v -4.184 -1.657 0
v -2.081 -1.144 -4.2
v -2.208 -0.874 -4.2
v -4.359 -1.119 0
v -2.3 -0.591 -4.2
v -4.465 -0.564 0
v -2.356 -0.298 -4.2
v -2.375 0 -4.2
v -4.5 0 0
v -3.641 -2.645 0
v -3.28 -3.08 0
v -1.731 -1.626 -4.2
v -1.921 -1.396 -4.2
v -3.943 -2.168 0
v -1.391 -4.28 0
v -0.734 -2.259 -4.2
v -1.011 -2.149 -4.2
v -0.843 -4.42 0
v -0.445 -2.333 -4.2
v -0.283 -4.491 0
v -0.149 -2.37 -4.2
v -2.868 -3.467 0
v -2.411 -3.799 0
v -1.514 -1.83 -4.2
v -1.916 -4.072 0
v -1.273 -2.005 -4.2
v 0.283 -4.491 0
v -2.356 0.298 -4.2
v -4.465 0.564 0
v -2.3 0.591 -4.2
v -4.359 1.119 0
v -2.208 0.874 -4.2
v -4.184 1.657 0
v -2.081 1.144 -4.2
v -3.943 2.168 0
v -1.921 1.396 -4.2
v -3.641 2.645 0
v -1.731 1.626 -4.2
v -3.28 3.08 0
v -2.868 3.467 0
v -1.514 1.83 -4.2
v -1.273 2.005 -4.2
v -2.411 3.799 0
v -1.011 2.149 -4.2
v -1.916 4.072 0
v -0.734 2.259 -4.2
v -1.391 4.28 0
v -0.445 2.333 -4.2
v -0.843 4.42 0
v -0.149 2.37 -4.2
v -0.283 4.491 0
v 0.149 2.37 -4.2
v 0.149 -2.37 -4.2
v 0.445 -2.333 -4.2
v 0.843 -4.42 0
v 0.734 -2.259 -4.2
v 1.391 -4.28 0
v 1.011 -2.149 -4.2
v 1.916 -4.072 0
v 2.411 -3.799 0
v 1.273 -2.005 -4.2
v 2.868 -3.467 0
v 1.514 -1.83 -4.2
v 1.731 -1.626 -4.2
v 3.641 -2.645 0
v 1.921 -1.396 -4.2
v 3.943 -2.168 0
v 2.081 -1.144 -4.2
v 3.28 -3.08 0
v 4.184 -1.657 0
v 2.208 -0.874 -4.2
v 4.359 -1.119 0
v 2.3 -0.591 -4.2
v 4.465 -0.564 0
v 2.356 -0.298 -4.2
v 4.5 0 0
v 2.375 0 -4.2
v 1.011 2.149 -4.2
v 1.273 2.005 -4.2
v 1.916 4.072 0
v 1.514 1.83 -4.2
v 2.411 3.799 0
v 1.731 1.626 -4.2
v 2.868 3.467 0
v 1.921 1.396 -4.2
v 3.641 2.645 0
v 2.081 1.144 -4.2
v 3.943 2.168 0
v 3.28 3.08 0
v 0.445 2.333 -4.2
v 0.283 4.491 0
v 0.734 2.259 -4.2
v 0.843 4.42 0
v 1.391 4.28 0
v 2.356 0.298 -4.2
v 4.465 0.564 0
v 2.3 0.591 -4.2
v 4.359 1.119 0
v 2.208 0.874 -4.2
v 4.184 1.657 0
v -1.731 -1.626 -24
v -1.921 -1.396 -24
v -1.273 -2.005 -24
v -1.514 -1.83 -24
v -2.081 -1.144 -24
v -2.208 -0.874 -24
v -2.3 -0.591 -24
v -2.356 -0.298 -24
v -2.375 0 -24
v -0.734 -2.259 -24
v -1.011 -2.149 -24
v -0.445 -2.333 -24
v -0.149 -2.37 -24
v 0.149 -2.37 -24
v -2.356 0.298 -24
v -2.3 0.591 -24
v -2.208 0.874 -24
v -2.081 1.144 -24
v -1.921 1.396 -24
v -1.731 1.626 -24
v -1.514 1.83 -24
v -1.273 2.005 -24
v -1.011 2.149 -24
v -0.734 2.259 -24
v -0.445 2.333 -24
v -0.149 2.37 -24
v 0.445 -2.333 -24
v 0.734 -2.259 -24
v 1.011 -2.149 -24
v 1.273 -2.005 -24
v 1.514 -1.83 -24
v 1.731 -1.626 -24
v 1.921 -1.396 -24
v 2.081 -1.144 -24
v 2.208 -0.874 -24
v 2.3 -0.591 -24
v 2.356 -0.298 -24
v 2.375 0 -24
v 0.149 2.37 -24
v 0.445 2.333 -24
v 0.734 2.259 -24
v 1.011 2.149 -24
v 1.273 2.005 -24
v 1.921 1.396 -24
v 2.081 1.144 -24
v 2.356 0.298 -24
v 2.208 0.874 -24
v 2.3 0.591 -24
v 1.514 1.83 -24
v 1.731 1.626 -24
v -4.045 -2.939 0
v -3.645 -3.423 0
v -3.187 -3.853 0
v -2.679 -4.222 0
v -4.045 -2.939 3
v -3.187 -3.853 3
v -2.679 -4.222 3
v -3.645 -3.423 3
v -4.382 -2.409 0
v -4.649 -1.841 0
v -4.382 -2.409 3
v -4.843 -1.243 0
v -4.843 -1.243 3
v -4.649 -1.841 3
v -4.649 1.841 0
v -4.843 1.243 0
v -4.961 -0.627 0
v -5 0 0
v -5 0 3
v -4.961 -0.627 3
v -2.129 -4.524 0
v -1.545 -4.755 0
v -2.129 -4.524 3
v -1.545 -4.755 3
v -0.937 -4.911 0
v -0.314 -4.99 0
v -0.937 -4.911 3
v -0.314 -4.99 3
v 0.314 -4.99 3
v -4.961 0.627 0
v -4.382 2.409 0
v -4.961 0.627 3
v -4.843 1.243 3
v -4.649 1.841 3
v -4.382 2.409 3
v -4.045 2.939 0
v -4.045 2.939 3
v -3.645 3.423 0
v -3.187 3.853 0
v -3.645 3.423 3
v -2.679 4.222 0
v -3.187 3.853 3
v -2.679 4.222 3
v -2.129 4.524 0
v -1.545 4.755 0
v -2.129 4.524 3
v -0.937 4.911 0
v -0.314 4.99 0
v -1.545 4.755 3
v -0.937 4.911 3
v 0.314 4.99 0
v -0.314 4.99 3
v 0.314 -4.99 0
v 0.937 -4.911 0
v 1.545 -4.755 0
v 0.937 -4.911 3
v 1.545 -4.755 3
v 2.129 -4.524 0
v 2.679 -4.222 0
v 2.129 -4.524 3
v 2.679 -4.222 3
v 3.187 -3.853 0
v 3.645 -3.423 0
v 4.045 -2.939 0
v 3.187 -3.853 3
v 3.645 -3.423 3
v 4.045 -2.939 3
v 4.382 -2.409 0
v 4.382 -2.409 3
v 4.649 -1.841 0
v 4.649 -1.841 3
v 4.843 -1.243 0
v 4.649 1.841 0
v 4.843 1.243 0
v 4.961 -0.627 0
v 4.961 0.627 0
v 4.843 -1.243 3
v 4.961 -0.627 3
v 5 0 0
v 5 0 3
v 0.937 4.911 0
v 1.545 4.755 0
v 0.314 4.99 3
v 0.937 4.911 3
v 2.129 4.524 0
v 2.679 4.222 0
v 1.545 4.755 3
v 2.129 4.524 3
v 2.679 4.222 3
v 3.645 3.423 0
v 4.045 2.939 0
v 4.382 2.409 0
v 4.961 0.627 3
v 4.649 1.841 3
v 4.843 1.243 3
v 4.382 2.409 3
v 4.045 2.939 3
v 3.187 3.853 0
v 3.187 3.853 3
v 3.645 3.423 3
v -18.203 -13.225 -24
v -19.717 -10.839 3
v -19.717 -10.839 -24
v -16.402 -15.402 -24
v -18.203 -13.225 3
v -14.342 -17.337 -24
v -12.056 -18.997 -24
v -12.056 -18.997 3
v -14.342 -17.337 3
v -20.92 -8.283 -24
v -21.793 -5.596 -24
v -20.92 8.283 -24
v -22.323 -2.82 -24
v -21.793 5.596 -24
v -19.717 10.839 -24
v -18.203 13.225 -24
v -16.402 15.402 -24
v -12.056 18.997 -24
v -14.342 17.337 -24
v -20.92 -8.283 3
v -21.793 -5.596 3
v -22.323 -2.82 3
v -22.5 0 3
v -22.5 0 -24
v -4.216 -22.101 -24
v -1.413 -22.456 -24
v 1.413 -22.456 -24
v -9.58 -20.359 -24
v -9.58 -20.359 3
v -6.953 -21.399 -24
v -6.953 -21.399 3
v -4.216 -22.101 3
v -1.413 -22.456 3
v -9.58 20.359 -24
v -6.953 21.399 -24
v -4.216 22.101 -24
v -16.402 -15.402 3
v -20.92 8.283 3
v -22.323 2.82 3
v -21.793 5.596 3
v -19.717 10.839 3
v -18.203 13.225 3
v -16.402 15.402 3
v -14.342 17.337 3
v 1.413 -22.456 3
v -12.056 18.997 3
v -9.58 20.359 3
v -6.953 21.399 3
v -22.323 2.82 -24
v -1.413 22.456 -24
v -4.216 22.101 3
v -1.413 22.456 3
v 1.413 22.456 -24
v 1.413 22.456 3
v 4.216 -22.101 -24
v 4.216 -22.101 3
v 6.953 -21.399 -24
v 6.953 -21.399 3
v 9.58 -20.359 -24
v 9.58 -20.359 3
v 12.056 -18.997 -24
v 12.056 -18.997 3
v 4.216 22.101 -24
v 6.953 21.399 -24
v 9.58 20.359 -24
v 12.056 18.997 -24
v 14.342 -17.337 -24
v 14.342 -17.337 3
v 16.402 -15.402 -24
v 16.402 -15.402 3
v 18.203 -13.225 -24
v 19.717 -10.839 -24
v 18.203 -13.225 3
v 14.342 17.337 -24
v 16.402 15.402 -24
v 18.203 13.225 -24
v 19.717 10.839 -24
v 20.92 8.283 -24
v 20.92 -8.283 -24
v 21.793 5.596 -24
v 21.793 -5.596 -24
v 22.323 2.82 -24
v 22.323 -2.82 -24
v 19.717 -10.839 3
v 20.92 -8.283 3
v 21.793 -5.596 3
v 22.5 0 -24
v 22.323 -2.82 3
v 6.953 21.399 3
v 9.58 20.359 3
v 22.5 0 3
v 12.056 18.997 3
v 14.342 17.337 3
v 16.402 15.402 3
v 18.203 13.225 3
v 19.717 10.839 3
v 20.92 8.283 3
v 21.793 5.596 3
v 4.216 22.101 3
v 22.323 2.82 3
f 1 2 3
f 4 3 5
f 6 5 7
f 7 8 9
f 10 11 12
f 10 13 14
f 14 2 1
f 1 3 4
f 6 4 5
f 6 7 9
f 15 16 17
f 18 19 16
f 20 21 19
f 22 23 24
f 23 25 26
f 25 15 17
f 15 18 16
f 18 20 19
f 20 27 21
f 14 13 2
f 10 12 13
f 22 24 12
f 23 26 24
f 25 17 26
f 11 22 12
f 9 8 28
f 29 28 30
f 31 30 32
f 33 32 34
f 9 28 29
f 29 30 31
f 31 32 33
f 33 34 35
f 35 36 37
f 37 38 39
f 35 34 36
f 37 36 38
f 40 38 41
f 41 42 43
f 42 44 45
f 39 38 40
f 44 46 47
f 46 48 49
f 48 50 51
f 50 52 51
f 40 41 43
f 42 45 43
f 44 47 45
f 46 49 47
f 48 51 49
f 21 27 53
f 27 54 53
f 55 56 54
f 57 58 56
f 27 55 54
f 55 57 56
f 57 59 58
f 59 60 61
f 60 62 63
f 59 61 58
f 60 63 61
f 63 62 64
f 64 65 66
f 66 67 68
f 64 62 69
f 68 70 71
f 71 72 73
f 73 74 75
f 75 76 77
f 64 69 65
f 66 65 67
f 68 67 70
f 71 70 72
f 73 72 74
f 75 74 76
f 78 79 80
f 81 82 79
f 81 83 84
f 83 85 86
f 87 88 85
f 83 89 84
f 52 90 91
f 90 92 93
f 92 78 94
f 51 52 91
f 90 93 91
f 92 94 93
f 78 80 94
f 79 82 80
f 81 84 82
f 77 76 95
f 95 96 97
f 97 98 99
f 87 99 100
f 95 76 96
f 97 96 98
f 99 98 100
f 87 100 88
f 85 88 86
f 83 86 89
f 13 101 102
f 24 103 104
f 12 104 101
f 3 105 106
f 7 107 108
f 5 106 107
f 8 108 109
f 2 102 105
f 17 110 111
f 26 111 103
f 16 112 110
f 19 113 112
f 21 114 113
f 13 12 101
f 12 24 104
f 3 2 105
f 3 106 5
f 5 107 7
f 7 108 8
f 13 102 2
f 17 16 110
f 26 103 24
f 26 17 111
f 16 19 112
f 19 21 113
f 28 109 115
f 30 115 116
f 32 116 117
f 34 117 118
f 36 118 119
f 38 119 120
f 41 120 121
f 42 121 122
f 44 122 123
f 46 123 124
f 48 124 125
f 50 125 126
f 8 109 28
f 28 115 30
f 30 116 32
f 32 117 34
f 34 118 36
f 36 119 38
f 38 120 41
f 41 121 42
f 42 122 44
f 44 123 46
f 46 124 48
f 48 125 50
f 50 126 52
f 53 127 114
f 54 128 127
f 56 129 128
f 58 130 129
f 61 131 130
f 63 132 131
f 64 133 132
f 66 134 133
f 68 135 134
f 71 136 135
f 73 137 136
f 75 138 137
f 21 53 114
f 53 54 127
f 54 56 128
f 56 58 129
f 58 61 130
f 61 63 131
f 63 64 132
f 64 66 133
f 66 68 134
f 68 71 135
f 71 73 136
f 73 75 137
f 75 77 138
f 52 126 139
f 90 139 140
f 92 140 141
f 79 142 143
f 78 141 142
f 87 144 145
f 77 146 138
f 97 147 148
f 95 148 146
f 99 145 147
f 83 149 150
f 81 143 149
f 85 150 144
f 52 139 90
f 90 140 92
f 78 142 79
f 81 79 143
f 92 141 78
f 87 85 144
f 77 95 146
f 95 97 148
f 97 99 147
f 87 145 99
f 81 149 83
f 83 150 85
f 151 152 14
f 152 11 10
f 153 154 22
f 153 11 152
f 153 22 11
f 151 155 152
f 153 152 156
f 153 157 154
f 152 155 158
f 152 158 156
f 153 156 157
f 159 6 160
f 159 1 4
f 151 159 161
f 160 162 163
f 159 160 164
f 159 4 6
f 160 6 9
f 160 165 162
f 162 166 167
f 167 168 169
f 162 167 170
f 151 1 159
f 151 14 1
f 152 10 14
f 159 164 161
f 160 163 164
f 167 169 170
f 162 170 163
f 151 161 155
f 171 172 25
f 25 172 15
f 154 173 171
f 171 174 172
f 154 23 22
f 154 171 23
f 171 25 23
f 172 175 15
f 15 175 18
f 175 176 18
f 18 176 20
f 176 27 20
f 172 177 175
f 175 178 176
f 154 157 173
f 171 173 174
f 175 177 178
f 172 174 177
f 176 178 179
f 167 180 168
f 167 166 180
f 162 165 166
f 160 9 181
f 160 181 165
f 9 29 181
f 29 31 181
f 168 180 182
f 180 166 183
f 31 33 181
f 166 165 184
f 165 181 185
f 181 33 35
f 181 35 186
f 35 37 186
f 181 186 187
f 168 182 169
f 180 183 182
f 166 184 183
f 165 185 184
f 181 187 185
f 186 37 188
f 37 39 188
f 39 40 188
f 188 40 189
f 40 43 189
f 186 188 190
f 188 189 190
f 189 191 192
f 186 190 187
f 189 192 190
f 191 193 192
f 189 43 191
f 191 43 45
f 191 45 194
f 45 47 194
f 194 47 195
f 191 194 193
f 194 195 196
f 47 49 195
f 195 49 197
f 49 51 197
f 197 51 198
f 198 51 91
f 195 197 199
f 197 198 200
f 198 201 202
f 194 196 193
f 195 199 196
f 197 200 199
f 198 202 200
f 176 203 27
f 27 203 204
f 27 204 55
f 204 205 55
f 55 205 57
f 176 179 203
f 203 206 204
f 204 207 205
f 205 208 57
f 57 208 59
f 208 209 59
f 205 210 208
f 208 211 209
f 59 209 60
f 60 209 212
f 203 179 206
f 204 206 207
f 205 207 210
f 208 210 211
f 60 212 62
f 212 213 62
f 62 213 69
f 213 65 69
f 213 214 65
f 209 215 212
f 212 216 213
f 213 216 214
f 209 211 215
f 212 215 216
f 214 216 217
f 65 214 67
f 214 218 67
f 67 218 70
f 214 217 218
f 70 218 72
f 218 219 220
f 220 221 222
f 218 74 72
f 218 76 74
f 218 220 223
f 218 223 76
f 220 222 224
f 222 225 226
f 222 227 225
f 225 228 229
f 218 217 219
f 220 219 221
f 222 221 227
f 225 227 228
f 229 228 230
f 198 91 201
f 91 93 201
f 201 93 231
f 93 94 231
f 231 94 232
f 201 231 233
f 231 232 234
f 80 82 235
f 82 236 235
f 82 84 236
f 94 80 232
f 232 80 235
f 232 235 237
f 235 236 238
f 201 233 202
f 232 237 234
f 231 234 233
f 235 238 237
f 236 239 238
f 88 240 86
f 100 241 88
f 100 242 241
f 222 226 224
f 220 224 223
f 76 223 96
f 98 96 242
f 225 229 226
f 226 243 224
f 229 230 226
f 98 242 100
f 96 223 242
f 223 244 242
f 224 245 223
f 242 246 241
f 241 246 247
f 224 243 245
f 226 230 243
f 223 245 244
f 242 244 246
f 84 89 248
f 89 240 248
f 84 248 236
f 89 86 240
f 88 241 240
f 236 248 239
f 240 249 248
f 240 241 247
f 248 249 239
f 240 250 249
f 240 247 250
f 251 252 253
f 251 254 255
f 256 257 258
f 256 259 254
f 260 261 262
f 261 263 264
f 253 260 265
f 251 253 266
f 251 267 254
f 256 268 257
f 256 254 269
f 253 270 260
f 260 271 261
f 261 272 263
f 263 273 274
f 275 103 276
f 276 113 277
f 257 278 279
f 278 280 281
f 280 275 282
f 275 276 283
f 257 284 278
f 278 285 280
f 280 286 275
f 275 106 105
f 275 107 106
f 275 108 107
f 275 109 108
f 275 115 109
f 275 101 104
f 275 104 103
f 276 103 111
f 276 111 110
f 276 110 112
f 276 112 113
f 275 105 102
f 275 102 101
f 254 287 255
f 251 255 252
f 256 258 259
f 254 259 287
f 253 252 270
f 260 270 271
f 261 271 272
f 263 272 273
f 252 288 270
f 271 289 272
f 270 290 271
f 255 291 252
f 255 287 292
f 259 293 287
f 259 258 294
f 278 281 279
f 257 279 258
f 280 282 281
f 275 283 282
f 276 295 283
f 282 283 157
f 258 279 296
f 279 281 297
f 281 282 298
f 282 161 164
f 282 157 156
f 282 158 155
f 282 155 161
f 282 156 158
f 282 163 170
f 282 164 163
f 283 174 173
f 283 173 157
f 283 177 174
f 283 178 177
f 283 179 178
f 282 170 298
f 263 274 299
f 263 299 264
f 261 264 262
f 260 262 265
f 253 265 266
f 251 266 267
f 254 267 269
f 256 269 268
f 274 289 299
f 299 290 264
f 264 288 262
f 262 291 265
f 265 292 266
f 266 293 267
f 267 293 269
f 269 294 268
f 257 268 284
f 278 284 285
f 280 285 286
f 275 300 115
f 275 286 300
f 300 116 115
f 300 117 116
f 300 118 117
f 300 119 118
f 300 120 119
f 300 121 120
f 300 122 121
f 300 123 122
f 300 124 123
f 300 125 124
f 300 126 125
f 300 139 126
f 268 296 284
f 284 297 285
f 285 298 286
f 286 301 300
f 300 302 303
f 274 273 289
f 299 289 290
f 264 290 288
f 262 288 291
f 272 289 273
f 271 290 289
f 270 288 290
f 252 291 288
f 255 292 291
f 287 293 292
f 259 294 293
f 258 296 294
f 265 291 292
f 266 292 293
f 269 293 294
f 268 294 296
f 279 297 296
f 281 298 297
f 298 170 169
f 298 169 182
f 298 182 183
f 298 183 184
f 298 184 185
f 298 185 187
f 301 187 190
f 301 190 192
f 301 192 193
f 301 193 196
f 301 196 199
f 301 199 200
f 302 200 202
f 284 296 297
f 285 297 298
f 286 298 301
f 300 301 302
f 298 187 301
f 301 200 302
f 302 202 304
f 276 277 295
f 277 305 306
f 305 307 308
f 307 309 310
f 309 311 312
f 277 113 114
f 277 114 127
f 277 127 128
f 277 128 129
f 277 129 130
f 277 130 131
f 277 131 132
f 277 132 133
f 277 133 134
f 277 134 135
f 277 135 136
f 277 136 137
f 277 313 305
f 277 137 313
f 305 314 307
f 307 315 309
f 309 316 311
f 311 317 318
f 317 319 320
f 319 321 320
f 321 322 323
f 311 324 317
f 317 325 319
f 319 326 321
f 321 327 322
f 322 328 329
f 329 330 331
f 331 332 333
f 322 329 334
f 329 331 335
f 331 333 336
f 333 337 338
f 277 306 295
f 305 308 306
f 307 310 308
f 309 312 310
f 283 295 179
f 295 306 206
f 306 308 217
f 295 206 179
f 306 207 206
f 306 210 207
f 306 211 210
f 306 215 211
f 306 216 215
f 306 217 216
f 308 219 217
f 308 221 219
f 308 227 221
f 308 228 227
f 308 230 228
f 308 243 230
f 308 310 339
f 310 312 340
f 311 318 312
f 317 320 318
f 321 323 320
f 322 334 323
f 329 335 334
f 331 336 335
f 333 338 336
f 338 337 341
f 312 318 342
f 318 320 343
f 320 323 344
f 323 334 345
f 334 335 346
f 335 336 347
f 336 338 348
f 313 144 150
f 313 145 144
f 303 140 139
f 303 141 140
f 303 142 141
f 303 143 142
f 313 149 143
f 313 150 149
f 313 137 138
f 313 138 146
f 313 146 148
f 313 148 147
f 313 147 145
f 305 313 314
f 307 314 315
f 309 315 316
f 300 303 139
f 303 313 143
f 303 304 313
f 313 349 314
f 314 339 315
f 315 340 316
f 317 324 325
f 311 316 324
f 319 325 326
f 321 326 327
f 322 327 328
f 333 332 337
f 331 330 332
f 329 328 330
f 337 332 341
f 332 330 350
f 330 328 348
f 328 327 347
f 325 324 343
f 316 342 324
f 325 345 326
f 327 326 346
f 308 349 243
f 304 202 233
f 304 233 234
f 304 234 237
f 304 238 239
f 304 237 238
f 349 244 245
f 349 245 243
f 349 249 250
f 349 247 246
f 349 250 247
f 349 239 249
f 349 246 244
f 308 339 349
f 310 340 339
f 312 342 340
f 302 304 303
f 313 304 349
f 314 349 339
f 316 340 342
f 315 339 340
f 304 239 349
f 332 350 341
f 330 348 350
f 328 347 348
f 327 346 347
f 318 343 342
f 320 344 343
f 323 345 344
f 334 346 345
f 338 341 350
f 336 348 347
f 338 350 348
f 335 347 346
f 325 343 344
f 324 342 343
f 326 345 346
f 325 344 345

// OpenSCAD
$fn = 50;

difference() {
	union() {
		translate(v = [0, 0, -24.0]) {
			cylinder(h = 27, r = 22.5);
		}
	}
	union() {
		translate(v = [0, 0, 0]) {
			rotate(a = [0, 0, 0]) {
				difference() {
					union() {
						translate(v = [0, 0, -27.0]) {
							cylinder(h = 27, r = 2.25);
						}
						translate(v = [0, 0, -4.2]) {
							cylinder(h = 4.2, r1 = 2.375, r2 = 4.5);
						}
						translate(v = [0, 0, -27.0]) {
							cylinder(h = 27, r = 2.375);
						}
						translate(v = [0, 0, -27.0]) {
							cylinder(h = 27, r = 2.25);
						}
					}
					union();
				}
			}
		}
		#cylinder(h = 3, r = 5.0);
	}
}
